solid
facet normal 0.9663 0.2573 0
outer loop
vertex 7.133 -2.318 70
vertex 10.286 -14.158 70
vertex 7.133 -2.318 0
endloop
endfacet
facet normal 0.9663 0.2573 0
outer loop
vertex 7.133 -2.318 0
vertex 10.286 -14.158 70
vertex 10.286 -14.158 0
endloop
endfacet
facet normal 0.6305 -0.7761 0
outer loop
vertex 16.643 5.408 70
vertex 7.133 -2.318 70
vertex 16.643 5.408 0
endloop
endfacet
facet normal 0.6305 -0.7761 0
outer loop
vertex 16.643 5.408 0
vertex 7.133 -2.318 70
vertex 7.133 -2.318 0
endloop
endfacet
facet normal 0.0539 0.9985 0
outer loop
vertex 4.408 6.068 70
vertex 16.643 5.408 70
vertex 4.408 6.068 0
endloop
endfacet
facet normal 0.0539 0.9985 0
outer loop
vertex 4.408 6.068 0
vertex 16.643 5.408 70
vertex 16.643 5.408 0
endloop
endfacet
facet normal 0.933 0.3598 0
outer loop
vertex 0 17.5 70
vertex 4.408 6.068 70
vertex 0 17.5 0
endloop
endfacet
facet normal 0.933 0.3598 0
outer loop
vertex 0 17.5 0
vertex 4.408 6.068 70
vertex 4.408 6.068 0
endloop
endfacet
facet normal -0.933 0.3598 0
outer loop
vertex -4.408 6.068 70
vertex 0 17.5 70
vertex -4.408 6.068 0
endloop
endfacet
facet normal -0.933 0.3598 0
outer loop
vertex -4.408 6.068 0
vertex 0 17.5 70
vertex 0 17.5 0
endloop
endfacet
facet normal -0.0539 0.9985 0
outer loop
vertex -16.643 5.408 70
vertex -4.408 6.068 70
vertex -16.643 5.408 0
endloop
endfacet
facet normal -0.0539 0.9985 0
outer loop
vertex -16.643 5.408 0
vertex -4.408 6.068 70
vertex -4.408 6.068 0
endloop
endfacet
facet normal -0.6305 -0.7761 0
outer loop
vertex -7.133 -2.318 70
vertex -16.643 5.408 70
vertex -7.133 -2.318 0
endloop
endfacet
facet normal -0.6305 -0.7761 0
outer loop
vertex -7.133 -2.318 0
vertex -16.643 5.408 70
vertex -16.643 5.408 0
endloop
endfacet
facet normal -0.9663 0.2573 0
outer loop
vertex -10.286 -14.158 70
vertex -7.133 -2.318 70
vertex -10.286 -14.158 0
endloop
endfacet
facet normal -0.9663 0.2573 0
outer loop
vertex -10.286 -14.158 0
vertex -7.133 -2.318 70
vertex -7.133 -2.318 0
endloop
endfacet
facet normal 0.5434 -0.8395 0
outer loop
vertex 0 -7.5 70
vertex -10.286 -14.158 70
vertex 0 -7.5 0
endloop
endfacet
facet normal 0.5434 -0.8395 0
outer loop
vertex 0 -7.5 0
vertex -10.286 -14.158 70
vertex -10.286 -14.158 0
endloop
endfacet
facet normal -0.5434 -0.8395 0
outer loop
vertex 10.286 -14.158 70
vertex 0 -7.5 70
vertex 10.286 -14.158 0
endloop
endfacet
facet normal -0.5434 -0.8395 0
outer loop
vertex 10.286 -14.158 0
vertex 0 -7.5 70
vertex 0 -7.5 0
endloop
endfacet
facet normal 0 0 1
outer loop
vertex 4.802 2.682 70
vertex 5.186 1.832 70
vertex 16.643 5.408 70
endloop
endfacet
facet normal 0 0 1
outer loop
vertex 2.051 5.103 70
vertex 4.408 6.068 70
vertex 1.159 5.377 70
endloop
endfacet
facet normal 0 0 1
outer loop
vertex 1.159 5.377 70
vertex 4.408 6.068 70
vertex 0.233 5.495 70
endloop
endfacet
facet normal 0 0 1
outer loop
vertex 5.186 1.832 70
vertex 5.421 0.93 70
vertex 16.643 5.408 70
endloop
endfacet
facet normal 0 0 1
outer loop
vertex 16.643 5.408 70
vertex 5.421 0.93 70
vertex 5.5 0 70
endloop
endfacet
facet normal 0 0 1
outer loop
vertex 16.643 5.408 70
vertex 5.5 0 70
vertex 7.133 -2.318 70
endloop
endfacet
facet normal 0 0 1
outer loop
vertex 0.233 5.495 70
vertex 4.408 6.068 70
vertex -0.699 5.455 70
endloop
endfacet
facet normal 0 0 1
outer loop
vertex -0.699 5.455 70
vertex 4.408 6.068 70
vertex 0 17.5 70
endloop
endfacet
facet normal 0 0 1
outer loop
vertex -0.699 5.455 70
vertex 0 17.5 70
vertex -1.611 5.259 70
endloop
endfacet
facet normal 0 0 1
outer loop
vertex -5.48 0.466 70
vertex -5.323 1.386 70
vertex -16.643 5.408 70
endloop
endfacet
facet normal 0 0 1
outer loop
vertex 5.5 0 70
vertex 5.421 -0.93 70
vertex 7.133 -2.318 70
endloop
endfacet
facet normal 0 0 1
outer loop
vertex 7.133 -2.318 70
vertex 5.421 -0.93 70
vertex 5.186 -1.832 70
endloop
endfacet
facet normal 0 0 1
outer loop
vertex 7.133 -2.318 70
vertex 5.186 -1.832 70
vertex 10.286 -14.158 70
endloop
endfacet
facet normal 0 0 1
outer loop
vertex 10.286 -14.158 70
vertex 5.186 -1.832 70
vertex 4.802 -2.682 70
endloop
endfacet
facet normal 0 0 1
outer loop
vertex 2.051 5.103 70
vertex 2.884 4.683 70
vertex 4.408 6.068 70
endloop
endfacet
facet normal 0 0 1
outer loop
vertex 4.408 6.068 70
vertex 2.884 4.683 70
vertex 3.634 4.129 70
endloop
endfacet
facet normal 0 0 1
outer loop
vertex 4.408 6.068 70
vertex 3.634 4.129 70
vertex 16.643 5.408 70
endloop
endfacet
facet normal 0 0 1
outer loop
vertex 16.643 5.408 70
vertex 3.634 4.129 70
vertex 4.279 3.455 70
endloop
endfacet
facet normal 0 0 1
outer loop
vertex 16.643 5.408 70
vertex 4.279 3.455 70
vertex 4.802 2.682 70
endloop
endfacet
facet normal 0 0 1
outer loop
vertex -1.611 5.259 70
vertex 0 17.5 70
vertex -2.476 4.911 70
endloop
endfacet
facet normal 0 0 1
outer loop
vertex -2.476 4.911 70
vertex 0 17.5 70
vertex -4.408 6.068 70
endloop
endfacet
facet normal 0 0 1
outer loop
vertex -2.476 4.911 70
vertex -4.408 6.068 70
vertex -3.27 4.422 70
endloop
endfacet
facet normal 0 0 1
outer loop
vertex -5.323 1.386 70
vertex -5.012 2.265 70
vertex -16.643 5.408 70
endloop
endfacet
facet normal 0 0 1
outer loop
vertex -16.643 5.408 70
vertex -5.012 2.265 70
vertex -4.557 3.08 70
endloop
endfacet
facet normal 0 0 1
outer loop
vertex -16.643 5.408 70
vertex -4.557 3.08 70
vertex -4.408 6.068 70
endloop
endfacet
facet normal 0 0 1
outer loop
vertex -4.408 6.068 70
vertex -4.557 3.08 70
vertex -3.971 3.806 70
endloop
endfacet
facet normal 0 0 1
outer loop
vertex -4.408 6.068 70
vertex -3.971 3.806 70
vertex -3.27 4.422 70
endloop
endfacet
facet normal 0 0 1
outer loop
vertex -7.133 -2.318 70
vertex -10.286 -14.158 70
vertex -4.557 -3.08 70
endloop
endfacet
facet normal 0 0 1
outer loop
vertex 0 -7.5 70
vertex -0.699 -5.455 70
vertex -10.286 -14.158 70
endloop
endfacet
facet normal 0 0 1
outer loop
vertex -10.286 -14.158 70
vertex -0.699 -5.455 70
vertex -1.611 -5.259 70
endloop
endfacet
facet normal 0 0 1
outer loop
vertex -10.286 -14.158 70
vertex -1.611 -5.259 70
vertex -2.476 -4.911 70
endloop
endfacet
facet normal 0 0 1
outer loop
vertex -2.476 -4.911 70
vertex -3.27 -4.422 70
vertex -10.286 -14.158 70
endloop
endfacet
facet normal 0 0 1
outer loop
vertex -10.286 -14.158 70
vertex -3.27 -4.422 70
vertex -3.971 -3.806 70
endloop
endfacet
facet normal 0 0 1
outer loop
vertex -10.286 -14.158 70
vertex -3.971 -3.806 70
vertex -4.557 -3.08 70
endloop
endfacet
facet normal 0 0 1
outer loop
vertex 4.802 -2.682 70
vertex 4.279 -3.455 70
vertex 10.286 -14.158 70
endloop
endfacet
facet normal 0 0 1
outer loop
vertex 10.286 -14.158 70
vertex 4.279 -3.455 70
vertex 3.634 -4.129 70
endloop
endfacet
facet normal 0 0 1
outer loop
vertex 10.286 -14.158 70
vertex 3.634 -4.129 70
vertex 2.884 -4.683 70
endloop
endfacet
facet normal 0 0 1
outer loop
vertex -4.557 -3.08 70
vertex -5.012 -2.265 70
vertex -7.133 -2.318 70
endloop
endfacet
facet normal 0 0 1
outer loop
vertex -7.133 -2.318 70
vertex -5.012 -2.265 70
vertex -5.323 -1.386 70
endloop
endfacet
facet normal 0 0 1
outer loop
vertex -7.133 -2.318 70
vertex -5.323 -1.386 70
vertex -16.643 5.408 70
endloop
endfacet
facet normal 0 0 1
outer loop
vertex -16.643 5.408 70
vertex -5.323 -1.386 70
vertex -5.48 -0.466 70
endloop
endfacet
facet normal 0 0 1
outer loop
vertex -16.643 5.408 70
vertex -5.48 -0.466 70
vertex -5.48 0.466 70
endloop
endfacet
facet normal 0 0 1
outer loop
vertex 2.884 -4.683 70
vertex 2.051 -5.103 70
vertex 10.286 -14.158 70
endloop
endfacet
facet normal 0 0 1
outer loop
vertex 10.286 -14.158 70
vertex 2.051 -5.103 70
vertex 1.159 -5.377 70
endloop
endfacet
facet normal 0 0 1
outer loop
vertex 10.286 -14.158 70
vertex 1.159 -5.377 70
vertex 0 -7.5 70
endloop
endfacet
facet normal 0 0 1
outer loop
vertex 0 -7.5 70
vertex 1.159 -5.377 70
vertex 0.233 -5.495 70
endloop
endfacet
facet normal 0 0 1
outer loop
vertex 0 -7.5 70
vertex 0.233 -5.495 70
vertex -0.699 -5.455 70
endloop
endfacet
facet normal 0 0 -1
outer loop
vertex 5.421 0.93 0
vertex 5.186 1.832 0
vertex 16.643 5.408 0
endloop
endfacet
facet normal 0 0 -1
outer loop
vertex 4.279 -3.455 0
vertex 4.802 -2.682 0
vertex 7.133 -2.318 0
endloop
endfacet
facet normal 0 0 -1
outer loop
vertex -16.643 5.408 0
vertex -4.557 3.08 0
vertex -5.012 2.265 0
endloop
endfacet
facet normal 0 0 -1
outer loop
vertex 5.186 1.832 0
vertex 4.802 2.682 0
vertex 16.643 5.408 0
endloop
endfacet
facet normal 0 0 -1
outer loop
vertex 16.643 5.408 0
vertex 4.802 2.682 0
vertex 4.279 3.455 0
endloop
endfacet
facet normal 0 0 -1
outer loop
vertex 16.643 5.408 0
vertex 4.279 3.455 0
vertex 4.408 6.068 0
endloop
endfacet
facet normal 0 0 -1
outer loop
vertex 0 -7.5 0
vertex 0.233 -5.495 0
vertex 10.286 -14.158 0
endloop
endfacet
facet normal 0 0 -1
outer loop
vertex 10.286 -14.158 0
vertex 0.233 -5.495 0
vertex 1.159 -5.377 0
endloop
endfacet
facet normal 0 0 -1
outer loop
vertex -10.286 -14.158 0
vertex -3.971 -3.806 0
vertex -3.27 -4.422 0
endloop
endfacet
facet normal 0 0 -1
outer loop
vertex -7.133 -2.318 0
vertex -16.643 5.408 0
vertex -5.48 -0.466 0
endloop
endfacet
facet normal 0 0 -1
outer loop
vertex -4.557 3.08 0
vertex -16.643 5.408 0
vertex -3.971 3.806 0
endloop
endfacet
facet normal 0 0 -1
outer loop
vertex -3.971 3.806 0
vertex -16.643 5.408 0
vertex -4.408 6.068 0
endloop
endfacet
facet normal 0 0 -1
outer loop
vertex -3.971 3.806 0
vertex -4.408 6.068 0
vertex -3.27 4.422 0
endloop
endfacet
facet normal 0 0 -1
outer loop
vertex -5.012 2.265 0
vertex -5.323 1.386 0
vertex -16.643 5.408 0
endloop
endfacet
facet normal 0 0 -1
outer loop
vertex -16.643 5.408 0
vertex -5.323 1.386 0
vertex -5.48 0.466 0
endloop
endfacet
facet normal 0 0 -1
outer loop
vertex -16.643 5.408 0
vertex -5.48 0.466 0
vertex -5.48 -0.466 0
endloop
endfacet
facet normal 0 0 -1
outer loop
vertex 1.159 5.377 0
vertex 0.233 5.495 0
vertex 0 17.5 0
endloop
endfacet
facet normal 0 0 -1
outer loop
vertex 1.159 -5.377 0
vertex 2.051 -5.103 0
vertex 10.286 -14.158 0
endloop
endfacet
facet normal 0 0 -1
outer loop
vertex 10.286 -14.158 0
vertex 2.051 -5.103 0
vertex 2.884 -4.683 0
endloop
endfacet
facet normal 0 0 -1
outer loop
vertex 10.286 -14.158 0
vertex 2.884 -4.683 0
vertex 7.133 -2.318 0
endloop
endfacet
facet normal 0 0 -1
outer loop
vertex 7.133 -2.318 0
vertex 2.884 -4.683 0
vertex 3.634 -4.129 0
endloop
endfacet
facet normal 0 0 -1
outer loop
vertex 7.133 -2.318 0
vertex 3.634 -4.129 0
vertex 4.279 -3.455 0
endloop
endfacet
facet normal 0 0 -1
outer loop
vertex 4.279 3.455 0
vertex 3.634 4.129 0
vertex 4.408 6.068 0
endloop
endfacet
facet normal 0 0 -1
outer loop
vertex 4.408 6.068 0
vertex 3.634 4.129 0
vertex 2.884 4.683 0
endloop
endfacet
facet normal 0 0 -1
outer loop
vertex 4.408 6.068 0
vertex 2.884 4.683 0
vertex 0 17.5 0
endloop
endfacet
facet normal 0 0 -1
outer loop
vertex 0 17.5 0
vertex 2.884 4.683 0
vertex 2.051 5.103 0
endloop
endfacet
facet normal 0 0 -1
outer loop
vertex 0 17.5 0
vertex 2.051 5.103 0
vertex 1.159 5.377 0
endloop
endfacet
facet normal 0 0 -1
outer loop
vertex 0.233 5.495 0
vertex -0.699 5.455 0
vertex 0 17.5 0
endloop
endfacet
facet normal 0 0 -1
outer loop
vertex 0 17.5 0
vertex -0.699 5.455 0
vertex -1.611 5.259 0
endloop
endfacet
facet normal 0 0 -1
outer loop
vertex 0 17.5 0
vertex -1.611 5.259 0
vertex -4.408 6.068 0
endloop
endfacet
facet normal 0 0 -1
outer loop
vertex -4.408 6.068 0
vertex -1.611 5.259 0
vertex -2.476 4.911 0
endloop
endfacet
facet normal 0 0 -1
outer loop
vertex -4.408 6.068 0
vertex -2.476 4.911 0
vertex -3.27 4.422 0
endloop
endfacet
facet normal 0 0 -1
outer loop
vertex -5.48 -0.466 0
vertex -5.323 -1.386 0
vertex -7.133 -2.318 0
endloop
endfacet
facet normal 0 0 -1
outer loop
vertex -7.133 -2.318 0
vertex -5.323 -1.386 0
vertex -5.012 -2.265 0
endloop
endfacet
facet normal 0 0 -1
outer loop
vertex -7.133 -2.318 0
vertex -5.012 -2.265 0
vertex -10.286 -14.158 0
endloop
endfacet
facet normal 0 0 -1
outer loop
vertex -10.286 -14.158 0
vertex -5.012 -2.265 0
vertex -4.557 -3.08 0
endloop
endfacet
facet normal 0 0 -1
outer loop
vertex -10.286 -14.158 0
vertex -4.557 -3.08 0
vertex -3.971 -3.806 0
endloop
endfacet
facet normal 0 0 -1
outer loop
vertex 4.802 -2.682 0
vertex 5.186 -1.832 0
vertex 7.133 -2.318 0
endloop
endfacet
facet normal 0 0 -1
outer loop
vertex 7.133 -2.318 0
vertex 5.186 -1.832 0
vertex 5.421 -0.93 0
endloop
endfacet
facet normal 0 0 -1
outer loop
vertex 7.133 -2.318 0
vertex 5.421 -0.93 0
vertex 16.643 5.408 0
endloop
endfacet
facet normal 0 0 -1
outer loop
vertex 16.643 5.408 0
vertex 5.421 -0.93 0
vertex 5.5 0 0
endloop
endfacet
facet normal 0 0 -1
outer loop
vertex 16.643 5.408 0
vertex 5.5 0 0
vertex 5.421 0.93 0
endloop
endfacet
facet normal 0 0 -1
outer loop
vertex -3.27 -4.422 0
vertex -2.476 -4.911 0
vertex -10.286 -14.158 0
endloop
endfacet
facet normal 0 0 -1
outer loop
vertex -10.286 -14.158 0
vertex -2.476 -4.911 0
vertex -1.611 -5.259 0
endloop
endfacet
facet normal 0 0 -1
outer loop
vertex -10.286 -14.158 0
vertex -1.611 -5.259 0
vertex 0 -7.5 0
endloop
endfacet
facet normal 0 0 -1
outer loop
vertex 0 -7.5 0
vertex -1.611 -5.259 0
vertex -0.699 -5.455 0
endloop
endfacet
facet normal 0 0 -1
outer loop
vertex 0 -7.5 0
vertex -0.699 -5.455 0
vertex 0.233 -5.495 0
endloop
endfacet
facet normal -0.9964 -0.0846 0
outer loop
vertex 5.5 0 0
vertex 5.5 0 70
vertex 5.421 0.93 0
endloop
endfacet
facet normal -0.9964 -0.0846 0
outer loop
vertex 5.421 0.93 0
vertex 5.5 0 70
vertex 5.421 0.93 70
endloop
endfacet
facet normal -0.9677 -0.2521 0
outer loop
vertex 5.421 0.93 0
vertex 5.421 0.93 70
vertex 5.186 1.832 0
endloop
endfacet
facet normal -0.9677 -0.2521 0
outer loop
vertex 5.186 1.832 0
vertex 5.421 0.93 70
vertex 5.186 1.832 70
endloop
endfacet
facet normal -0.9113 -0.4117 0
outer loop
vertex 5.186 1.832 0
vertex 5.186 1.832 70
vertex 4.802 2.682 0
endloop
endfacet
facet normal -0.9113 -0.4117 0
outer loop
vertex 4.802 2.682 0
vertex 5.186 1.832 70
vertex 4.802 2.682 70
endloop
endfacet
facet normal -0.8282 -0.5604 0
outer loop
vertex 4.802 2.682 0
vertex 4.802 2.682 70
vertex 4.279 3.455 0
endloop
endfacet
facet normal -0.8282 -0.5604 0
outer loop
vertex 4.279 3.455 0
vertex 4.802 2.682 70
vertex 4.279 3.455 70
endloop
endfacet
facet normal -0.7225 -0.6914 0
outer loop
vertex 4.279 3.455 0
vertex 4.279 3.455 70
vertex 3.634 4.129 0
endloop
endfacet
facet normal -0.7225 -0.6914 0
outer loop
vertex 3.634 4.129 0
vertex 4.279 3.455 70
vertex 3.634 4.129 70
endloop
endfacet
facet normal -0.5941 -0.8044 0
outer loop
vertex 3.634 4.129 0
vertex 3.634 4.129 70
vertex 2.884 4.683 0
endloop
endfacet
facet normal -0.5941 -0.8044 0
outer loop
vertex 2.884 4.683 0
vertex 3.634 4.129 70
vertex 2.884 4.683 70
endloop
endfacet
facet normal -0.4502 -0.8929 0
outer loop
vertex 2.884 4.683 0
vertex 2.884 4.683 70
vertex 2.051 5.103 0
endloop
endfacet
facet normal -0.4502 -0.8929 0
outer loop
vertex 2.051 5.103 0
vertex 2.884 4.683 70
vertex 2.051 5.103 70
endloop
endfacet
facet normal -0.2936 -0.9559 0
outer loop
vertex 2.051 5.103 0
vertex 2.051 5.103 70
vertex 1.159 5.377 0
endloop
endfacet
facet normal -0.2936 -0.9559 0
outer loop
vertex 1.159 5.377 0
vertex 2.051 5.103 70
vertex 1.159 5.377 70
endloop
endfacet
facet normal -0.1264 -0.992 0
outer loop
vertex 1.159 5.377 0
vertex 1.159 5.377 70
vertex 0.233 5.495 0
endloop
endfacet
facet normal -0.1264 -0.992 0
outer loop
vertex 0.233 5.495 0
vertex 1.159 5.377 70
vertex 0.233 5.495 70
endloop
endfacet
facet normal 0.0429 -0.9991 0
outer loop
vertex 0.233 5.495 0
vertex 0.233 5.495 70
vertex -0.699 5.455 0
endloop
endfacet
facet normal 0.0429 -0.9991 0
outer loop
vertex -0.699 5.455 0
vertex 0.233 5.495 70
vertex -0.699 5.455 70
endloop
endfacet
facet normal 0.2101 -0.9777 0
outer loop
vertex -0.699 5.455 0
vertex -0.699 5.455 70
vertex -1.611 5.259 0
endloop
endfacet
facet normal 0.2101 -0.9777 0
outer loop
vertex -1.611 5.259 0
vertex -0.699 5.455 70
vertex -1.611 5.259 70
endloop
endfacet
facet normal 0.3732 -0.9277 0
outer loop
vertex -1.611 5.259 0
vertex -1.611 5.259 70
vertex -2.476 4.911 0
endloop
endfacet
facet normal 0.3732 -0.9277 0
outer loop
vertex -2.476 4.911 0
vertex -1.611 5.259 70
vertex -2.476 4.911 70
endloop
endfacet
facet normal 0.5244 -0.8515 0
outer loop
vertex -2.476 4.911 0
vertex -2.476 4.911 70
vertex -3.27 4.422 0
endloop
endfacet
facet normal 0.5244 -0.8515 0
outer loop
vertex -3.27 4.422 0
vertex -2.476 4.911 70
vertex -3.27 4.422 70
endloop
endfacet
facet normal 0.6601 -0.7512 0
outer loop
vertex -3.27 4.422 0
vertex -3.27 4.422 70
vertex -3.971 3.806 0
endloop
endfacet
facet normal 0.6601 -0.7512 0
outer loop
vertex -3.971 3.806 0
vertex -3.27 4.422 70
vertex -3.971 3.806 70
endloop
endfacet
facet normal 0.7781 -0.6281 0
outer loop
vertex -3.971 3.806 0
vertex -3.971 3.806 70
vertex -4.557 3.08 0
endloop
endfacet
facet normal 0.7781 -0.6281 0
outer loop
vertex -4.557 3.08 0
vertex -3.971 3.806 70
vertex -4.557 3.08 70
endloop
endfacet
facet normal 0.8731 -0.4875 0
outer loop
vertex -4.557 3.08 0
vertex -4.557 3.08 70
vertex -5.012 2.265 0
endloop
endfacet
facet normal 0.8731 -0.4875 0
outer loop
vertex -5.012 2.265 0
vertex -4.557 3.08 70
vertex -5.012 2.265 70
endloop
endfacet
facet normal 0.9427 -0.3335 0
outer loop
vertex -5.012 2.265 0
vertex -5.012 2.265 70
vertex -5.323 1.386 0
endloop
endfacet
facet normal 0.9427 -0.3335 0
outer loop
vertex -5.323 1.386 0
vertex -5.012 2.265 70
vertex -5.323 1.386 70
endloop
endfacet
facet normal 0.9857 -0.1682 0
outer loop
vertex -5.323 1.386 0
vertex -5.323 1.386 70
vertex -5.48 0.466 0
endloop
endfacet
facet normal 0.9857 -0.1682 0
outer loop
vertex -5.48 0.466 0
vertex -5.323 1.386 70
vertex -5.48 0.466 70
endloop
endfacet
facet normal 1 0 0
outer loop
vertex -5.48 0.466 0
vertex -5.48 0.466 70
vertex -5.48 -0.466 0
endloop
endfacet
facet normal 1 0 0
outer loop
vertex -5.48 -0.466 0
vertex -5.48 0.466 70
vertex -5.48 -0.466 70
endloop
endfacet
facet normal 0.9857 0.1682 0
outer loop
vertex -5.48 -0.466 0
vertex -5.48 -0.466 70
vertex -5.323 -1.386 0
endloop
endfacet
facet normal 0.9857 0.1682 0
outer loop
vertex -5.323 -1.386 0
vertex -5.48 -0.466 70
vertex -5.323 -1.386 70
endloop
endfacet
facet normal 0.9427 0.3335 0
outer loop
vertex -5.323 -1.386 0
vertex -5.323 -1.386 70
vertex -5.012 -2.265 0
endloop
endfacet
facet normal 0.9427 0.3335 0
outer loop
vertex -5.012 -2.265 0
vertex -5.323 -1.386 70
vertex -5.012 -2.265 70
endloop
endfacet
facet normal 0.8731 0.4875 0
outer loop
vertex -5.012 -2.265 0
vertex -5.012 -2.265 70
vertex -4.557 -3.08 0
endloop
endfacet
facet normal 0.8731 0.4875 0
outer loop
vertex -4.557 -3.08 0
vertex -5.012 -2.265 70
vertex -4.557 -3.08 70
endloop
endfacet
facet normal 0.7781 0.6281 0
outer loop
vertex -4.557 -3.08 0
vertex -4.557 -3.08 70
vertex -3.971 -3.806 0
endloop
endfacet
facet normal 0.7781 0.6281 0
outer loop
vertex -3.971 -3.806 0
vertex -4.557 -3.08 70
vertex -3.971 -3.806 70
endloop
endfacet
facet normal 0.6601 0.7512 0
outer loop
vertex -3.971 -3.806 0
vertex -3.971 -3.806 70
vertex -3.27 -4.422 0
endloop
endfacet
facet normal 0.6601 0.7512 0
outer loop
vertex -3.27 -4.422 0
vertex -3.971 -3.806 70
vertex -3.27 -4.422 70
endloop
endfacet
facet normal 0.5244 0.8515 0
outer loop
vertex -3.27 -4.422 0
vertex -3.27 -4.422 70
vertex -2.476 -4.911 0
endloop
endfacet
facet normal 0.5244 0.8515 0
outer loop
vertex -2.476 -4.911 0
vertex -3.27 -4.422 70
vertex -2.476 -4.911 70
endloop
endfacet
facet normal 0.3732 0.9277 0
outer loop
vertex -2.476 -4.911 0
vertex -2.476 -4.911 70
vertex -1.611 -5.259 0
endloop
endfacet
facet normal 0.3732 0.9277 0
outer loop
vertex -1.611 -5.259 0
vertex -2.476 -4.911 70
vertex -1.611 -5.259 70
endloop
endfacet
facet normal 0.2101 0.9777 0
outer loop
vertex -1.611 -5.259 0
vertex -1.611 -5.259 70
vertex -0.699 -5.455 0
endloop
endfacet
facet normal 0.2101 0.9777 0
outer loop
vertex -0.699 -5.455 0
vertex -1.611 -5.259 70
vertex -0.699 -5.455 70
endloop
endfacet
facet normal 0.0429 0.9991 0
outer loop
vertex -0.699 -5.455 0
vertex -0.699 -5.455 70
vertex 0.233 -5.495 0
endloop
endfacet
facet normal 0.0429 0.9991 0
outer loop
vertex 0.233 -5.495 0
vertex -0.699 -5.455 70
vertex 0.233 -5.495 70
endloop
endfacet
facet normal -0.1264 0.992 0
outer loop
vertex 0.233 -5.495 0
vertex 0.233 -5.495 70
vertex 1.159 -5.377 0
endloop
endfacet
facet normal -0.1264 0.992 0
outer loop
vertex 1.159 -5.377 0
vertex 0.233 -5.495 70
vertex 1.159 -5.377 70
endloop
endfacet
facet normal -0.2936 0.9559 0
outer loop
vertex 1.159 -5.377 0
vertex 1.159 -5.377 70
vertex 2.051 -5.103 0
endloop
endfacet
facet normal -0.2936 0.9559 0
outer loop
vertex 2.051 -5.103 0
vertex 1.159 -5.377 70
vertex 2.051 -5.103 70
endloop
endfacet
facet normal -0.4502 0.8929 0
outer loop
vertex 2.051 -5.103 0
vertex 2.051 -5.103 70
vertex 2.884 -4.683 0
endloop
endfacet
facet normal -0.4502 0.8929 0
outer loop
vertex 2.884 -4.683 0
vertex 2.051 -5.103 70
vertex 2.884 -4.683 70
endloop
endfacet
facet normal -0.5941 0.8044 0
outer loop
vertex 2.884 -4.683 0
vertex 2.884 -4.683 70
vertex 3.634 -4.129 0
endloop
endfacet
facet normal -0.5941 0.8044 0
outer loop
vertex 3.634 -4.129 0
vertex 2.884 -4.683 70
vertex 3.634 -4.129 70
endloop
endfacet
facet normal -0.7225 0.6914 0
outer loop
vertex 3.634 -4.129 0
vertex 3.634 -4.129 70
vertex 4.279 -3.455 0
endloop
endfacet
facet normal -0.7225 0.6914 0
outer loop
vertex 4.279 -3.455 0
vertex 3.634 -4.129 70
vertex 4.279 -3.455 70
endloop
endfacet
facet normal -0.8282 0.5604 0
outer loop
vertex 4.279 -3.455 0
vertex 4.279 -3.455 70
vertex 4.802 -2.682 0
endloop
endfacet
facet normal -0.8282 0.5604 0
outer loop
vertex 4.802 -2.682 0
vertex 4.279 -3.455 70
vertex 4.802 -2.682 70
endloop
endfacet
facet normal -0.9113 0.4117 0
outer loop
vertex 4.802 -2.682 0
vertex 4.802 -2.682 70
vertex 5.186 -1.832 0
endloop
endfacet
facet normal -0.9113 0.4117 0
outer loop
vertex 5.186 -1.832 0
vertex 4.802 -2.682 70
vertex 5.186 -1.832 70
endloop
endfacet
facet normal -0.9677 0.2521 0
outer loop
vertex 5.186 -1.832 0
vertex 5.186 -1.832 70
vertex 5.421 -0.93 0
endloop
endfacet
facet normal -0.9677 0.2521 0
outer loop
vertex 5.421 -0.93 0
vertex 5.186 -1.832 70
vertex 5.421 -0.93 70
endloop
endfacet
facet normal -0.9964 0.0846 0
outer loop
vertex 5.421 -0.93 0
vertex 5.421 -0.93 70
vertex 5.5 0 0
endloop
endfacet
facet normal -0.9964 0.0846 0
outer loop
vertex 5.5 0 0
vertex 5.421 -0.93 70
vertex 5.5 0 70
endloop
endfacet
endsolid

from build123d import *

# Parameters (mm, degrees)
BOSS_EXTRUDE1_DEPTH = 70
SKETCH2_R           = 5.5
CUT_EXTRUDE1_DEPTH  = 75.049008955


with BuildPart() as part:
    # Sketch1 → Boss-Extrude1 (new body)
    with BuildSketch(Plane.XY):
        Polygon((0, 17.5), (-4.408389392, 6.067627458), (-16.643489035, 5.407797402), (-7.132923872, -2.317627458), (-10.286241915, -14.157797402), (0, -7.5), (10.286241915, -14.157797402), (7.132923872, -2.317627458), (16.643489035, 5.407797402), (4.408389392, 6.067627458), align=None)
    extrude(amount=BOSS_EXTRUDE1_DEPTH)

    # Sketch2 → Cut-Extrude1 (cut, through all)
    with BuildSketch(Plane.XY.offset(70)):
        Circle(SKETCH2_R)
    extrude(amount=-CUT_EXTRUDE1_DEPTH, mode=Mode.SUBTRACT)


solid = part.part
